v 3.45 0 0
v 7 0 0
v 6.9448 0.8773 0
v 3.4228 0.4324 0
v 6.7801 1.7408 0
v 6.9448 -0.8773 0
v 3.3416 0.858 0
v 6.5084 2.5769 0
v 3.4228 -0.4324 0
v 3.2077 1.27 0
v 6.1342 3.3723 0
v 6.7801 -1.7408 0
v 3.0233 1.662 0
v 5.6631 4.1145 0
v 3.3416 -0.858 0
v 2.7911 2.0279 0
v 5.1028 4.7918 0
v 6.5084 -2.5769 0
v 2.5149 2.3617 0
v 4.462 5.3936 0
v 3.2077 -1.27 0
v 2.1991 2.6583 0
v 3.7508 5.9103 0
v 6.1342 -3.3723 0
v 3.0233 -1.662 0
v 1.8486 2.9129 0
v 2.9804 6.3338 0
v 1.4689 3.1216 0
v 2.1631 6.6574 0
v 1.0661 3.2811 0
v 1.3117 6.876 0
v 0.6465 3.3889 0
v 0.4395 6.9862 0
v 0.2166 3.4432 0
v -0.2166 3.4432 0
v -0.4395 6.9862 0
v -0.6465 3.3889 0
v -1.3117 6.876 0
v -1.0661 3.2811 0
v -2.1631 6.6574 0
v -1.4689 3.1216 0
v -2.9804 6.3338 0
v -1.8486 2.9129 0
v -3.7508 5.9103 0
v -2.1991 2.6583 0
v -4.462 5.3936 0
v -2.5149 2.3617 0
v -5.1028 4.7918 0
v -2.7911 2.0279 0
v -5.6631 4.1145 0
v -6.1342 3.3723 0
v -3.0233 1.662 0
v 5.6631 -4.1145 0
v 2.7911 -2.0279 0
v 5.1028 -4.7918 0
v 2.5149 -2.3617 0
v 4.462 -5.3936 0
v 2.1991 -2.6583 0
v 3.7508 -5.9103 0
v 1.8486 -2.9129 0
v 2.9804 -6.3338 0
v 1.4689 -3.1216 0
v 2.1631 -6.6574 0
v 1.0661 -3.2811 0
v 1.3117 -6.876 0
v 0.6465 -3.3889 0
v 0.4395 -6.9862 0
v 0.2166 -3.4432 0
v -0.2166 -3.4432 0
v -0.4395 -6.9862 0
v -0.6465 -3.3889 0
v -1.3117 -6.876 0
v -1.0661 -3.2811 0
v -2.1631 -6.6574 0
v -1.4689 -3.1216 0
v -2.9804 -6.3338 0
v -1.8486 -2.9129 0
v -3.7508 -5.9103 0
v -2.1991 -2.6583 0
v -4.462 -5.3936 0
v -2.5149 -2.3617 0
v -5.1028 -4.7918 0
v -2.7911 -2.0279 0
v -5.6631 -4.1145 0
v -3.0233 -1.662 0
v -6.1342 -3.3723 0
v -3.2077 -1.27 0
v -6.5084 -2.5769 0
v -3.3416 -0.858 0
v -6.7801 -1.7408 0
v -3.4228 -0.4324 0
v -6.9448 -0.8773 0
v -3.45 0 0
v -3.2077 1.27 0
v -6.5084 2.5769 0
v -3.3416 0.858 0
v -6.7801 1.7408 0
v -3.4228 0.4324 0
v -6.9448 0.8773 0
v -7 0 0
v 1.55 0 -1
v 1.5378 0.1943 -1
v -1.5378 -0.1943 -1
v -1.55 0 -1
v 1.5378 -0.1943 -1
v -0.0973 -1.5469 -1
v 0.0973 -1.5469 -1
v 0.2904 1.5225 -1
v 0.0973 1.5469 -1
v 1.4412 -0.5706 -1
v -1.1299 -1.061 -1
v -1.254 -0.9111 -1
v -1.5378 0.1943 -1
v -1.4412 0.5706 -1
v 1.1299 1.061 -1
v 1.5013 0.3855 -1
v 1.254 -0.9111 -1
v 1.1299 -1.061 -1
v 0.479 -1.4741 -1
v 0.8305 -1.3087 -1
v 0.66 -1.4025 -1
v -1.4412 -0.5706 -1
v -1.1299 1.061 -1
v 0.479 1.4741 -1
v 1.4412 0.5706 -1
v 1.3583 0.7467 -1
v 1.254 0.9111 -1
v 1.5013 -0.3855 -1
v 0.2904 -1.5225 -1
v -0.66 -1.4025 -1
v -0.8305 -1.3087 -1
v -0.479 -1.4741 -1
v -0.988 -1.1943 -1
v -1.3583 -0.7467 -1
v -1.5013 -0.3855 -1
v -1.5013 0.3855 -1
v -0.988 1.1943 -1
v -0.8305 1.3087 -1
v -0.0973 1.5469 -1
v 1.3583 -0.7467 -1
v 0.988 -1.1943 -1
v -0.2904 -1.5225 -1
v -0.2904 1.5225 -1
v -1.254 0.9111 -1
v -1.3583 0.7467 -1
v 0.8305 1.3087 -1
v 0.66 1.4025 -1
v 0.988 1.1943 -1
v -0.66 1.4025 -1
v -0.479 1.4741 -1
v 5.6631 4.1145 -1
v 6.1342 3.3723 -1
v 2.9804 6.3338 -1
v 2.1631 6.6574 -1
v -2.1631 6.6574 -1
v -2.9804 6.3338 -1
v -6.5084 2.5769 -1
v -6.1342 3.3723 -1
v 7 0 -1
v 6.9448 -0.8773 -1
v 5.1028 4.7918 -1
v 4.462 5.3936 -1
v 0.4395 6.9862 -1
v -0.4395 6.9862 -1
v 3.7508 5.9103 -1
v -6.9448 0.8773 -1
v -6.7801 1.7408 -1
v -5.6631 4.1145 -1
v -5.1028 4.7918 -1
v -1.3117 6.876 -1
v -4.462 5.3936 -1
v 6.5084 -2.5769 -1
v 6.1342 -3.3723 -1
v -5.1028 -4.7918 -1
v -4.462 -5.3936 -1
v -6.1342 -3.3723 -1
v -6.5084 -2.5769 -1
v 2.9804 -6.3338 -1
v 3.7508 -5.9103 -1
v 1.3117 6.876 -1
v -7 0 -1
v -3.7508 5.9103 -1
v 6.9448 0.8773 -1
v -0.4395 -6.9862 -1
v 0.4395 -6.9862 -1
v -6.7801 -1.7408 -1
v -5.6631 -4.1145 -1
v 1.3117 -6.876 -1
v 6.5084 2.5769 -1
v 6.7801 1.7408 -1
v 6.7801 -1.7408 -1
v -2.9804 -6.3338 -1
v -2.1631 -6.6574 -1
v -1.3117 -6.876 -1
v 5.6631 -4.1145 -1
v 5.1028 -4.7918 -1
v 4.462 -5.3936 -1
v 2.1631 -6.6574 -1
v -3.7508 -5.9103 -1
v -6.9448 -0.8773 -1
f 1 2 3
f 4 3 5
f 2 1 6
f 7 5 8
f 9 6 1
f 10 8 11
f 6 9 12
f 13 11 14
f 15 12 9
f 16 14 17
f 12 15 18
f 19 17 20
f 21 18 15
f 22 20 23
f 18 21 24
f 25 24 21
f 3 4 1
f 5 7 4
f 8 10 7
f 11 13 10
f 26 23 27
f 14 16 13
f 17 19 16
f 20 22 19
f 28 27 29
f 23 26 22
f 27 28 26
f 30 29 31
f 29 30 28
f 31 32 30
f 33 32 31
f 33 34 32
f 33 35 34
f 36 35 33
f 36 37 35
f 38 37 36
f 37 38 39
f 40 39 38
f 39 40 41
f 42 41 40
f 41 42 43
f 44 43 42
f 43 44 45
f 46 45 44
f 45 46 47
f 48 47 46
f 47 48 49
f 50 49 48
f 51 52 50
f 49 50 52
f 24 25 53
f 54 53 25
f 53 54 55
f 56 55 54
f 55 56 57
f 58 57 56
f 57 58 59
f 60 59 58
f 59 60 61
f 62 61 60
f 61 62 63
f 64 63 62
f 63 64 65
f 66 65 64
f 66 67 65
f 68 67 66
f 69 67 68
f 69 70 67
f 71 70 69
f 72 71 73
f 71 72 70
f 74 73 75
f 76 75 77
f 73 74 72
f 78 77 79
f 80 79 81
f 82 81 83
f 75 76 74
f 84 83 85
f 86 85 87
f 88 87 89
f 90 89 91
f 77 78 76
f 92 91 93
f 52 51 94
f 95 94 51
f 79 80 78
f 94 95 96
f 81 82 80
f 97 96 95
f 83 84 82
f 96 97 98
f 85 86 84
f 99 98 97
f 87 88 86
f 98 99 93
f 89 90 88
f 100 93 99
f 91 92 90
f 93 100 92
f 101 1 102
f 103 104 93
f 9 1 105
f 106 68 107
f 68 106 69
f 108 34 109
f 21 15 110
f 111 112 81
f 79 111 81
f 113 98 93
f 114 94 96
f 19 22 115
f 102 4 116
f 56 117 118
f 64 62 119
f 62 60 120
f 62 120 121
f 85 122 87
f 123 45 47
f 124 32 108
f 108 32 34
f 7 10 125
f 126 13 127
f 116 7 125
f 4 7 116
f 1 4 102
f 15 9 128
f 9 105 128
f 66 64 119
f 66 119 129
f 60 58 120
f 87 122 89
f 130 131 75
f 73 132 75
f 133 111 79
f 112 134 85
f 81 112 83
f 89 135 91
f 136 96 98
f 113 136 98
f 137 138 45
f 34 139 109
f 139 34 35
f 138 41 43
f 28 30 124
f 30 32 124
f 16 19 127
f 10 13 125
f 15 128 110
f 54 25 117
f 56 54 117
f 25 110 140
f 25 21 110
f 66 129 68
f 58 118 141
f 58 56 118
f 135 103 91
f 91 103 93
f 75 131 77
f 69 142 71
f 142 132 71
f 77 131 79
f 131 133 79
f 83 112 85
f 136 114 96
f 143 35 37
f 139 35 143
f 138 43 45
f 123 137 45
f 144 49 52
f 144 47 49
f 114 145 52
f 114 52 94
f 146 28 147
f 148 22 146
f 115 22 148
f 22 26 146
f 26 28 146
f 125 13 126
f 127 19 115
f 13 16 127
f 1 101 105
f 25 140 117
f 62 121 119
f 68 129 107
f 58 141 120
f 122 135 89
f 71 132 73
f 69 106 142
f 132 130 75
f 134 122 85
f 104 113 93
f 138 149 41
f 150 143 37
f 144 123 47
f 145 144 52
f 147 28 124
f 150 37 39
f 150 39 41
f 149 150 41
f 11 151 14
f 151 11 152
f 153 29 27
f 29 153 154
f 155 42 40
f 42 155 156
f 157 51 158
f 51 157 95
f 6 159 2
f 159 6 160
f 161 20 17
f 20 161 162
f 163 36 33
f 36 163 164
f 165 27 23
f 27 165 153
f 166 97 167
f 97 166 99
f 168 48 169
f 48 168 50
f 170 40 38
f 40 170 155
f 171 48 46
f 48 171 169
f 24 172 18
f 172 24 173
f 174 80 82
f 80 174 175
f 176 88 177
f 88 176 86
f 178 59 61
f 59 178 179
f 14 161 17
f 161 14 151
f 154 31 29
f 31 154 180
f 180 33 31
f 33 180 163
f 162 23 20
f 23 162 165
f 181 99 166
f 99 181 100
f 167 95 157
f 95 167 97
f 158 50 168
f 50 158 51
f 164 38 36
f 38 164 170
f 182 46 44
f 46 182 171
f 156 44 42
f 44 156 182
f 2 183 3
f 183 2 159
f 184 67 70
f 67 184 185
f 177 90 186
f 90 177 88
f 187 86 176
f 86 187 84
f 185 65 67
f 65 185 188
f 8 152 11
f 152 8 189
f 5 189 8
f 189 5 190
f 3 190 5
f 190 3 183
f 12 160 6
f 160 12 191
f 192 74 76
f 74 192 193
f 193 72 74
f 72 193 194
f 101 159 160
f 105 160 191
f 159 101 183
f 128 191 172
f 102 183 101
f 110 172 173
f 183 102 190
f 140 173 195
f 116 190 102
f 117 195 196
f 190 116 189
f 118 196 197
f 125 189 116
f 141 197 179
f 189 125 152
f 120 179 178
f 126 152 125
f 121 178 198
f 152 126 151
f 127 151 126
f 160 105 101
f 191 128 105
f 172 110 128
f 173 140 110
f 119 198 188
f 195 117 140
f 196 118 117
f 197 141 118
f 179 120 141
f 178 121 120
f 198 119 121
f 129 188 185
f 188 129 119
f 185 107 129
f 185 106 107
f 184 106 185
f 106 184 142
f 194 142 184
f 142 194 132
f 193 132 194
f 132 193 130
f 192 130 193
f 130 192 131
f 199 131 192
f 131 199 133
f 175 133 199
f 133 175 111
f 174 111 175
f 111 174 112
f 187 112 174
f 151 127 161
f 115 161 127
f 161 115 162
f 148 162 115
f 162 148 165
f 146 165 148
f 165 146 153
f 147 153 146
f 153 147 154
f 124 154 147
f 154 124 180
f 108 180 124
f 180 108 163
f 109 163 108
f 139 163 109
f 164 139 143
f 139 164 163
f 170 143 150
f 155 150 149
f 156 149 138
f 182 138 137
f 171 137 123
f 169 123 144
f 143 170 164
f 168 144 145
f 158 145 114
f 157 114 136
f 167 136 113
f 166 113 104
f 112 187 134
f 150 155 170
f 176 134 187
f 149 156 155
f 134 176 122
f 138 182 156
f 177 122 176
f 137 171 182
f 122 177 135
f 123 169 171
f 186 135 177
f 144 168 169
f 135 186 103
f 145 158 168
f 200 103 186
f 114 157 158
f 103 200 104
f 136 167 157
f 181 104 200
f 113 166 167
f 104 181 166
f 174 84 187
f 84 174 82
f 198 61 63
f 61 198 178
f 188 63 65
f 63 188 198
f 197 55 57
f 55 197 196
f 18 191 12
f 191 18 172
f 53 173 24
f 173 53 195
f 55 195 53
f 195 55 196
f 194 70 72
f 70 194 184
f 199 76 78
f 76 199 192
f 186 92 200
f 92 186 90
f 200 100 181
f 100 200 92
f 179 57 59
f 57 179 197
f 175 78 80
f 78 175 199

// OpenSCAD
$fn = 50;

difference() {
	union() {
		translate(v = [0, 0, -1.0]) {
			cylinder(h = 1.0, r = 7.0);
		}
	}
	union() {
		translate(v = [0, 0, 0]) {
			rotate(a = [0, 0, 0]) {
				difference() {
					union() {
						translate(v = [0, 0, -4.0]) {
							cylinder(h = 4.0, r = 1.25);
						}
						translate(v = [0, 0, -1.0]) {
							cylinder(h = 1.0, r1 = 1.55, r2 = 3.45);
						}
						translate(v = [0, 0, -4.0]) {
							cylinder(h = 4.0, r = 1.55);
						}
						translate(v = [0, 0, -4.0]) {
							cylinder(h = 4.0, r = 1.25);
						}
					}
					union();
				}
			}
		}
	}
}
